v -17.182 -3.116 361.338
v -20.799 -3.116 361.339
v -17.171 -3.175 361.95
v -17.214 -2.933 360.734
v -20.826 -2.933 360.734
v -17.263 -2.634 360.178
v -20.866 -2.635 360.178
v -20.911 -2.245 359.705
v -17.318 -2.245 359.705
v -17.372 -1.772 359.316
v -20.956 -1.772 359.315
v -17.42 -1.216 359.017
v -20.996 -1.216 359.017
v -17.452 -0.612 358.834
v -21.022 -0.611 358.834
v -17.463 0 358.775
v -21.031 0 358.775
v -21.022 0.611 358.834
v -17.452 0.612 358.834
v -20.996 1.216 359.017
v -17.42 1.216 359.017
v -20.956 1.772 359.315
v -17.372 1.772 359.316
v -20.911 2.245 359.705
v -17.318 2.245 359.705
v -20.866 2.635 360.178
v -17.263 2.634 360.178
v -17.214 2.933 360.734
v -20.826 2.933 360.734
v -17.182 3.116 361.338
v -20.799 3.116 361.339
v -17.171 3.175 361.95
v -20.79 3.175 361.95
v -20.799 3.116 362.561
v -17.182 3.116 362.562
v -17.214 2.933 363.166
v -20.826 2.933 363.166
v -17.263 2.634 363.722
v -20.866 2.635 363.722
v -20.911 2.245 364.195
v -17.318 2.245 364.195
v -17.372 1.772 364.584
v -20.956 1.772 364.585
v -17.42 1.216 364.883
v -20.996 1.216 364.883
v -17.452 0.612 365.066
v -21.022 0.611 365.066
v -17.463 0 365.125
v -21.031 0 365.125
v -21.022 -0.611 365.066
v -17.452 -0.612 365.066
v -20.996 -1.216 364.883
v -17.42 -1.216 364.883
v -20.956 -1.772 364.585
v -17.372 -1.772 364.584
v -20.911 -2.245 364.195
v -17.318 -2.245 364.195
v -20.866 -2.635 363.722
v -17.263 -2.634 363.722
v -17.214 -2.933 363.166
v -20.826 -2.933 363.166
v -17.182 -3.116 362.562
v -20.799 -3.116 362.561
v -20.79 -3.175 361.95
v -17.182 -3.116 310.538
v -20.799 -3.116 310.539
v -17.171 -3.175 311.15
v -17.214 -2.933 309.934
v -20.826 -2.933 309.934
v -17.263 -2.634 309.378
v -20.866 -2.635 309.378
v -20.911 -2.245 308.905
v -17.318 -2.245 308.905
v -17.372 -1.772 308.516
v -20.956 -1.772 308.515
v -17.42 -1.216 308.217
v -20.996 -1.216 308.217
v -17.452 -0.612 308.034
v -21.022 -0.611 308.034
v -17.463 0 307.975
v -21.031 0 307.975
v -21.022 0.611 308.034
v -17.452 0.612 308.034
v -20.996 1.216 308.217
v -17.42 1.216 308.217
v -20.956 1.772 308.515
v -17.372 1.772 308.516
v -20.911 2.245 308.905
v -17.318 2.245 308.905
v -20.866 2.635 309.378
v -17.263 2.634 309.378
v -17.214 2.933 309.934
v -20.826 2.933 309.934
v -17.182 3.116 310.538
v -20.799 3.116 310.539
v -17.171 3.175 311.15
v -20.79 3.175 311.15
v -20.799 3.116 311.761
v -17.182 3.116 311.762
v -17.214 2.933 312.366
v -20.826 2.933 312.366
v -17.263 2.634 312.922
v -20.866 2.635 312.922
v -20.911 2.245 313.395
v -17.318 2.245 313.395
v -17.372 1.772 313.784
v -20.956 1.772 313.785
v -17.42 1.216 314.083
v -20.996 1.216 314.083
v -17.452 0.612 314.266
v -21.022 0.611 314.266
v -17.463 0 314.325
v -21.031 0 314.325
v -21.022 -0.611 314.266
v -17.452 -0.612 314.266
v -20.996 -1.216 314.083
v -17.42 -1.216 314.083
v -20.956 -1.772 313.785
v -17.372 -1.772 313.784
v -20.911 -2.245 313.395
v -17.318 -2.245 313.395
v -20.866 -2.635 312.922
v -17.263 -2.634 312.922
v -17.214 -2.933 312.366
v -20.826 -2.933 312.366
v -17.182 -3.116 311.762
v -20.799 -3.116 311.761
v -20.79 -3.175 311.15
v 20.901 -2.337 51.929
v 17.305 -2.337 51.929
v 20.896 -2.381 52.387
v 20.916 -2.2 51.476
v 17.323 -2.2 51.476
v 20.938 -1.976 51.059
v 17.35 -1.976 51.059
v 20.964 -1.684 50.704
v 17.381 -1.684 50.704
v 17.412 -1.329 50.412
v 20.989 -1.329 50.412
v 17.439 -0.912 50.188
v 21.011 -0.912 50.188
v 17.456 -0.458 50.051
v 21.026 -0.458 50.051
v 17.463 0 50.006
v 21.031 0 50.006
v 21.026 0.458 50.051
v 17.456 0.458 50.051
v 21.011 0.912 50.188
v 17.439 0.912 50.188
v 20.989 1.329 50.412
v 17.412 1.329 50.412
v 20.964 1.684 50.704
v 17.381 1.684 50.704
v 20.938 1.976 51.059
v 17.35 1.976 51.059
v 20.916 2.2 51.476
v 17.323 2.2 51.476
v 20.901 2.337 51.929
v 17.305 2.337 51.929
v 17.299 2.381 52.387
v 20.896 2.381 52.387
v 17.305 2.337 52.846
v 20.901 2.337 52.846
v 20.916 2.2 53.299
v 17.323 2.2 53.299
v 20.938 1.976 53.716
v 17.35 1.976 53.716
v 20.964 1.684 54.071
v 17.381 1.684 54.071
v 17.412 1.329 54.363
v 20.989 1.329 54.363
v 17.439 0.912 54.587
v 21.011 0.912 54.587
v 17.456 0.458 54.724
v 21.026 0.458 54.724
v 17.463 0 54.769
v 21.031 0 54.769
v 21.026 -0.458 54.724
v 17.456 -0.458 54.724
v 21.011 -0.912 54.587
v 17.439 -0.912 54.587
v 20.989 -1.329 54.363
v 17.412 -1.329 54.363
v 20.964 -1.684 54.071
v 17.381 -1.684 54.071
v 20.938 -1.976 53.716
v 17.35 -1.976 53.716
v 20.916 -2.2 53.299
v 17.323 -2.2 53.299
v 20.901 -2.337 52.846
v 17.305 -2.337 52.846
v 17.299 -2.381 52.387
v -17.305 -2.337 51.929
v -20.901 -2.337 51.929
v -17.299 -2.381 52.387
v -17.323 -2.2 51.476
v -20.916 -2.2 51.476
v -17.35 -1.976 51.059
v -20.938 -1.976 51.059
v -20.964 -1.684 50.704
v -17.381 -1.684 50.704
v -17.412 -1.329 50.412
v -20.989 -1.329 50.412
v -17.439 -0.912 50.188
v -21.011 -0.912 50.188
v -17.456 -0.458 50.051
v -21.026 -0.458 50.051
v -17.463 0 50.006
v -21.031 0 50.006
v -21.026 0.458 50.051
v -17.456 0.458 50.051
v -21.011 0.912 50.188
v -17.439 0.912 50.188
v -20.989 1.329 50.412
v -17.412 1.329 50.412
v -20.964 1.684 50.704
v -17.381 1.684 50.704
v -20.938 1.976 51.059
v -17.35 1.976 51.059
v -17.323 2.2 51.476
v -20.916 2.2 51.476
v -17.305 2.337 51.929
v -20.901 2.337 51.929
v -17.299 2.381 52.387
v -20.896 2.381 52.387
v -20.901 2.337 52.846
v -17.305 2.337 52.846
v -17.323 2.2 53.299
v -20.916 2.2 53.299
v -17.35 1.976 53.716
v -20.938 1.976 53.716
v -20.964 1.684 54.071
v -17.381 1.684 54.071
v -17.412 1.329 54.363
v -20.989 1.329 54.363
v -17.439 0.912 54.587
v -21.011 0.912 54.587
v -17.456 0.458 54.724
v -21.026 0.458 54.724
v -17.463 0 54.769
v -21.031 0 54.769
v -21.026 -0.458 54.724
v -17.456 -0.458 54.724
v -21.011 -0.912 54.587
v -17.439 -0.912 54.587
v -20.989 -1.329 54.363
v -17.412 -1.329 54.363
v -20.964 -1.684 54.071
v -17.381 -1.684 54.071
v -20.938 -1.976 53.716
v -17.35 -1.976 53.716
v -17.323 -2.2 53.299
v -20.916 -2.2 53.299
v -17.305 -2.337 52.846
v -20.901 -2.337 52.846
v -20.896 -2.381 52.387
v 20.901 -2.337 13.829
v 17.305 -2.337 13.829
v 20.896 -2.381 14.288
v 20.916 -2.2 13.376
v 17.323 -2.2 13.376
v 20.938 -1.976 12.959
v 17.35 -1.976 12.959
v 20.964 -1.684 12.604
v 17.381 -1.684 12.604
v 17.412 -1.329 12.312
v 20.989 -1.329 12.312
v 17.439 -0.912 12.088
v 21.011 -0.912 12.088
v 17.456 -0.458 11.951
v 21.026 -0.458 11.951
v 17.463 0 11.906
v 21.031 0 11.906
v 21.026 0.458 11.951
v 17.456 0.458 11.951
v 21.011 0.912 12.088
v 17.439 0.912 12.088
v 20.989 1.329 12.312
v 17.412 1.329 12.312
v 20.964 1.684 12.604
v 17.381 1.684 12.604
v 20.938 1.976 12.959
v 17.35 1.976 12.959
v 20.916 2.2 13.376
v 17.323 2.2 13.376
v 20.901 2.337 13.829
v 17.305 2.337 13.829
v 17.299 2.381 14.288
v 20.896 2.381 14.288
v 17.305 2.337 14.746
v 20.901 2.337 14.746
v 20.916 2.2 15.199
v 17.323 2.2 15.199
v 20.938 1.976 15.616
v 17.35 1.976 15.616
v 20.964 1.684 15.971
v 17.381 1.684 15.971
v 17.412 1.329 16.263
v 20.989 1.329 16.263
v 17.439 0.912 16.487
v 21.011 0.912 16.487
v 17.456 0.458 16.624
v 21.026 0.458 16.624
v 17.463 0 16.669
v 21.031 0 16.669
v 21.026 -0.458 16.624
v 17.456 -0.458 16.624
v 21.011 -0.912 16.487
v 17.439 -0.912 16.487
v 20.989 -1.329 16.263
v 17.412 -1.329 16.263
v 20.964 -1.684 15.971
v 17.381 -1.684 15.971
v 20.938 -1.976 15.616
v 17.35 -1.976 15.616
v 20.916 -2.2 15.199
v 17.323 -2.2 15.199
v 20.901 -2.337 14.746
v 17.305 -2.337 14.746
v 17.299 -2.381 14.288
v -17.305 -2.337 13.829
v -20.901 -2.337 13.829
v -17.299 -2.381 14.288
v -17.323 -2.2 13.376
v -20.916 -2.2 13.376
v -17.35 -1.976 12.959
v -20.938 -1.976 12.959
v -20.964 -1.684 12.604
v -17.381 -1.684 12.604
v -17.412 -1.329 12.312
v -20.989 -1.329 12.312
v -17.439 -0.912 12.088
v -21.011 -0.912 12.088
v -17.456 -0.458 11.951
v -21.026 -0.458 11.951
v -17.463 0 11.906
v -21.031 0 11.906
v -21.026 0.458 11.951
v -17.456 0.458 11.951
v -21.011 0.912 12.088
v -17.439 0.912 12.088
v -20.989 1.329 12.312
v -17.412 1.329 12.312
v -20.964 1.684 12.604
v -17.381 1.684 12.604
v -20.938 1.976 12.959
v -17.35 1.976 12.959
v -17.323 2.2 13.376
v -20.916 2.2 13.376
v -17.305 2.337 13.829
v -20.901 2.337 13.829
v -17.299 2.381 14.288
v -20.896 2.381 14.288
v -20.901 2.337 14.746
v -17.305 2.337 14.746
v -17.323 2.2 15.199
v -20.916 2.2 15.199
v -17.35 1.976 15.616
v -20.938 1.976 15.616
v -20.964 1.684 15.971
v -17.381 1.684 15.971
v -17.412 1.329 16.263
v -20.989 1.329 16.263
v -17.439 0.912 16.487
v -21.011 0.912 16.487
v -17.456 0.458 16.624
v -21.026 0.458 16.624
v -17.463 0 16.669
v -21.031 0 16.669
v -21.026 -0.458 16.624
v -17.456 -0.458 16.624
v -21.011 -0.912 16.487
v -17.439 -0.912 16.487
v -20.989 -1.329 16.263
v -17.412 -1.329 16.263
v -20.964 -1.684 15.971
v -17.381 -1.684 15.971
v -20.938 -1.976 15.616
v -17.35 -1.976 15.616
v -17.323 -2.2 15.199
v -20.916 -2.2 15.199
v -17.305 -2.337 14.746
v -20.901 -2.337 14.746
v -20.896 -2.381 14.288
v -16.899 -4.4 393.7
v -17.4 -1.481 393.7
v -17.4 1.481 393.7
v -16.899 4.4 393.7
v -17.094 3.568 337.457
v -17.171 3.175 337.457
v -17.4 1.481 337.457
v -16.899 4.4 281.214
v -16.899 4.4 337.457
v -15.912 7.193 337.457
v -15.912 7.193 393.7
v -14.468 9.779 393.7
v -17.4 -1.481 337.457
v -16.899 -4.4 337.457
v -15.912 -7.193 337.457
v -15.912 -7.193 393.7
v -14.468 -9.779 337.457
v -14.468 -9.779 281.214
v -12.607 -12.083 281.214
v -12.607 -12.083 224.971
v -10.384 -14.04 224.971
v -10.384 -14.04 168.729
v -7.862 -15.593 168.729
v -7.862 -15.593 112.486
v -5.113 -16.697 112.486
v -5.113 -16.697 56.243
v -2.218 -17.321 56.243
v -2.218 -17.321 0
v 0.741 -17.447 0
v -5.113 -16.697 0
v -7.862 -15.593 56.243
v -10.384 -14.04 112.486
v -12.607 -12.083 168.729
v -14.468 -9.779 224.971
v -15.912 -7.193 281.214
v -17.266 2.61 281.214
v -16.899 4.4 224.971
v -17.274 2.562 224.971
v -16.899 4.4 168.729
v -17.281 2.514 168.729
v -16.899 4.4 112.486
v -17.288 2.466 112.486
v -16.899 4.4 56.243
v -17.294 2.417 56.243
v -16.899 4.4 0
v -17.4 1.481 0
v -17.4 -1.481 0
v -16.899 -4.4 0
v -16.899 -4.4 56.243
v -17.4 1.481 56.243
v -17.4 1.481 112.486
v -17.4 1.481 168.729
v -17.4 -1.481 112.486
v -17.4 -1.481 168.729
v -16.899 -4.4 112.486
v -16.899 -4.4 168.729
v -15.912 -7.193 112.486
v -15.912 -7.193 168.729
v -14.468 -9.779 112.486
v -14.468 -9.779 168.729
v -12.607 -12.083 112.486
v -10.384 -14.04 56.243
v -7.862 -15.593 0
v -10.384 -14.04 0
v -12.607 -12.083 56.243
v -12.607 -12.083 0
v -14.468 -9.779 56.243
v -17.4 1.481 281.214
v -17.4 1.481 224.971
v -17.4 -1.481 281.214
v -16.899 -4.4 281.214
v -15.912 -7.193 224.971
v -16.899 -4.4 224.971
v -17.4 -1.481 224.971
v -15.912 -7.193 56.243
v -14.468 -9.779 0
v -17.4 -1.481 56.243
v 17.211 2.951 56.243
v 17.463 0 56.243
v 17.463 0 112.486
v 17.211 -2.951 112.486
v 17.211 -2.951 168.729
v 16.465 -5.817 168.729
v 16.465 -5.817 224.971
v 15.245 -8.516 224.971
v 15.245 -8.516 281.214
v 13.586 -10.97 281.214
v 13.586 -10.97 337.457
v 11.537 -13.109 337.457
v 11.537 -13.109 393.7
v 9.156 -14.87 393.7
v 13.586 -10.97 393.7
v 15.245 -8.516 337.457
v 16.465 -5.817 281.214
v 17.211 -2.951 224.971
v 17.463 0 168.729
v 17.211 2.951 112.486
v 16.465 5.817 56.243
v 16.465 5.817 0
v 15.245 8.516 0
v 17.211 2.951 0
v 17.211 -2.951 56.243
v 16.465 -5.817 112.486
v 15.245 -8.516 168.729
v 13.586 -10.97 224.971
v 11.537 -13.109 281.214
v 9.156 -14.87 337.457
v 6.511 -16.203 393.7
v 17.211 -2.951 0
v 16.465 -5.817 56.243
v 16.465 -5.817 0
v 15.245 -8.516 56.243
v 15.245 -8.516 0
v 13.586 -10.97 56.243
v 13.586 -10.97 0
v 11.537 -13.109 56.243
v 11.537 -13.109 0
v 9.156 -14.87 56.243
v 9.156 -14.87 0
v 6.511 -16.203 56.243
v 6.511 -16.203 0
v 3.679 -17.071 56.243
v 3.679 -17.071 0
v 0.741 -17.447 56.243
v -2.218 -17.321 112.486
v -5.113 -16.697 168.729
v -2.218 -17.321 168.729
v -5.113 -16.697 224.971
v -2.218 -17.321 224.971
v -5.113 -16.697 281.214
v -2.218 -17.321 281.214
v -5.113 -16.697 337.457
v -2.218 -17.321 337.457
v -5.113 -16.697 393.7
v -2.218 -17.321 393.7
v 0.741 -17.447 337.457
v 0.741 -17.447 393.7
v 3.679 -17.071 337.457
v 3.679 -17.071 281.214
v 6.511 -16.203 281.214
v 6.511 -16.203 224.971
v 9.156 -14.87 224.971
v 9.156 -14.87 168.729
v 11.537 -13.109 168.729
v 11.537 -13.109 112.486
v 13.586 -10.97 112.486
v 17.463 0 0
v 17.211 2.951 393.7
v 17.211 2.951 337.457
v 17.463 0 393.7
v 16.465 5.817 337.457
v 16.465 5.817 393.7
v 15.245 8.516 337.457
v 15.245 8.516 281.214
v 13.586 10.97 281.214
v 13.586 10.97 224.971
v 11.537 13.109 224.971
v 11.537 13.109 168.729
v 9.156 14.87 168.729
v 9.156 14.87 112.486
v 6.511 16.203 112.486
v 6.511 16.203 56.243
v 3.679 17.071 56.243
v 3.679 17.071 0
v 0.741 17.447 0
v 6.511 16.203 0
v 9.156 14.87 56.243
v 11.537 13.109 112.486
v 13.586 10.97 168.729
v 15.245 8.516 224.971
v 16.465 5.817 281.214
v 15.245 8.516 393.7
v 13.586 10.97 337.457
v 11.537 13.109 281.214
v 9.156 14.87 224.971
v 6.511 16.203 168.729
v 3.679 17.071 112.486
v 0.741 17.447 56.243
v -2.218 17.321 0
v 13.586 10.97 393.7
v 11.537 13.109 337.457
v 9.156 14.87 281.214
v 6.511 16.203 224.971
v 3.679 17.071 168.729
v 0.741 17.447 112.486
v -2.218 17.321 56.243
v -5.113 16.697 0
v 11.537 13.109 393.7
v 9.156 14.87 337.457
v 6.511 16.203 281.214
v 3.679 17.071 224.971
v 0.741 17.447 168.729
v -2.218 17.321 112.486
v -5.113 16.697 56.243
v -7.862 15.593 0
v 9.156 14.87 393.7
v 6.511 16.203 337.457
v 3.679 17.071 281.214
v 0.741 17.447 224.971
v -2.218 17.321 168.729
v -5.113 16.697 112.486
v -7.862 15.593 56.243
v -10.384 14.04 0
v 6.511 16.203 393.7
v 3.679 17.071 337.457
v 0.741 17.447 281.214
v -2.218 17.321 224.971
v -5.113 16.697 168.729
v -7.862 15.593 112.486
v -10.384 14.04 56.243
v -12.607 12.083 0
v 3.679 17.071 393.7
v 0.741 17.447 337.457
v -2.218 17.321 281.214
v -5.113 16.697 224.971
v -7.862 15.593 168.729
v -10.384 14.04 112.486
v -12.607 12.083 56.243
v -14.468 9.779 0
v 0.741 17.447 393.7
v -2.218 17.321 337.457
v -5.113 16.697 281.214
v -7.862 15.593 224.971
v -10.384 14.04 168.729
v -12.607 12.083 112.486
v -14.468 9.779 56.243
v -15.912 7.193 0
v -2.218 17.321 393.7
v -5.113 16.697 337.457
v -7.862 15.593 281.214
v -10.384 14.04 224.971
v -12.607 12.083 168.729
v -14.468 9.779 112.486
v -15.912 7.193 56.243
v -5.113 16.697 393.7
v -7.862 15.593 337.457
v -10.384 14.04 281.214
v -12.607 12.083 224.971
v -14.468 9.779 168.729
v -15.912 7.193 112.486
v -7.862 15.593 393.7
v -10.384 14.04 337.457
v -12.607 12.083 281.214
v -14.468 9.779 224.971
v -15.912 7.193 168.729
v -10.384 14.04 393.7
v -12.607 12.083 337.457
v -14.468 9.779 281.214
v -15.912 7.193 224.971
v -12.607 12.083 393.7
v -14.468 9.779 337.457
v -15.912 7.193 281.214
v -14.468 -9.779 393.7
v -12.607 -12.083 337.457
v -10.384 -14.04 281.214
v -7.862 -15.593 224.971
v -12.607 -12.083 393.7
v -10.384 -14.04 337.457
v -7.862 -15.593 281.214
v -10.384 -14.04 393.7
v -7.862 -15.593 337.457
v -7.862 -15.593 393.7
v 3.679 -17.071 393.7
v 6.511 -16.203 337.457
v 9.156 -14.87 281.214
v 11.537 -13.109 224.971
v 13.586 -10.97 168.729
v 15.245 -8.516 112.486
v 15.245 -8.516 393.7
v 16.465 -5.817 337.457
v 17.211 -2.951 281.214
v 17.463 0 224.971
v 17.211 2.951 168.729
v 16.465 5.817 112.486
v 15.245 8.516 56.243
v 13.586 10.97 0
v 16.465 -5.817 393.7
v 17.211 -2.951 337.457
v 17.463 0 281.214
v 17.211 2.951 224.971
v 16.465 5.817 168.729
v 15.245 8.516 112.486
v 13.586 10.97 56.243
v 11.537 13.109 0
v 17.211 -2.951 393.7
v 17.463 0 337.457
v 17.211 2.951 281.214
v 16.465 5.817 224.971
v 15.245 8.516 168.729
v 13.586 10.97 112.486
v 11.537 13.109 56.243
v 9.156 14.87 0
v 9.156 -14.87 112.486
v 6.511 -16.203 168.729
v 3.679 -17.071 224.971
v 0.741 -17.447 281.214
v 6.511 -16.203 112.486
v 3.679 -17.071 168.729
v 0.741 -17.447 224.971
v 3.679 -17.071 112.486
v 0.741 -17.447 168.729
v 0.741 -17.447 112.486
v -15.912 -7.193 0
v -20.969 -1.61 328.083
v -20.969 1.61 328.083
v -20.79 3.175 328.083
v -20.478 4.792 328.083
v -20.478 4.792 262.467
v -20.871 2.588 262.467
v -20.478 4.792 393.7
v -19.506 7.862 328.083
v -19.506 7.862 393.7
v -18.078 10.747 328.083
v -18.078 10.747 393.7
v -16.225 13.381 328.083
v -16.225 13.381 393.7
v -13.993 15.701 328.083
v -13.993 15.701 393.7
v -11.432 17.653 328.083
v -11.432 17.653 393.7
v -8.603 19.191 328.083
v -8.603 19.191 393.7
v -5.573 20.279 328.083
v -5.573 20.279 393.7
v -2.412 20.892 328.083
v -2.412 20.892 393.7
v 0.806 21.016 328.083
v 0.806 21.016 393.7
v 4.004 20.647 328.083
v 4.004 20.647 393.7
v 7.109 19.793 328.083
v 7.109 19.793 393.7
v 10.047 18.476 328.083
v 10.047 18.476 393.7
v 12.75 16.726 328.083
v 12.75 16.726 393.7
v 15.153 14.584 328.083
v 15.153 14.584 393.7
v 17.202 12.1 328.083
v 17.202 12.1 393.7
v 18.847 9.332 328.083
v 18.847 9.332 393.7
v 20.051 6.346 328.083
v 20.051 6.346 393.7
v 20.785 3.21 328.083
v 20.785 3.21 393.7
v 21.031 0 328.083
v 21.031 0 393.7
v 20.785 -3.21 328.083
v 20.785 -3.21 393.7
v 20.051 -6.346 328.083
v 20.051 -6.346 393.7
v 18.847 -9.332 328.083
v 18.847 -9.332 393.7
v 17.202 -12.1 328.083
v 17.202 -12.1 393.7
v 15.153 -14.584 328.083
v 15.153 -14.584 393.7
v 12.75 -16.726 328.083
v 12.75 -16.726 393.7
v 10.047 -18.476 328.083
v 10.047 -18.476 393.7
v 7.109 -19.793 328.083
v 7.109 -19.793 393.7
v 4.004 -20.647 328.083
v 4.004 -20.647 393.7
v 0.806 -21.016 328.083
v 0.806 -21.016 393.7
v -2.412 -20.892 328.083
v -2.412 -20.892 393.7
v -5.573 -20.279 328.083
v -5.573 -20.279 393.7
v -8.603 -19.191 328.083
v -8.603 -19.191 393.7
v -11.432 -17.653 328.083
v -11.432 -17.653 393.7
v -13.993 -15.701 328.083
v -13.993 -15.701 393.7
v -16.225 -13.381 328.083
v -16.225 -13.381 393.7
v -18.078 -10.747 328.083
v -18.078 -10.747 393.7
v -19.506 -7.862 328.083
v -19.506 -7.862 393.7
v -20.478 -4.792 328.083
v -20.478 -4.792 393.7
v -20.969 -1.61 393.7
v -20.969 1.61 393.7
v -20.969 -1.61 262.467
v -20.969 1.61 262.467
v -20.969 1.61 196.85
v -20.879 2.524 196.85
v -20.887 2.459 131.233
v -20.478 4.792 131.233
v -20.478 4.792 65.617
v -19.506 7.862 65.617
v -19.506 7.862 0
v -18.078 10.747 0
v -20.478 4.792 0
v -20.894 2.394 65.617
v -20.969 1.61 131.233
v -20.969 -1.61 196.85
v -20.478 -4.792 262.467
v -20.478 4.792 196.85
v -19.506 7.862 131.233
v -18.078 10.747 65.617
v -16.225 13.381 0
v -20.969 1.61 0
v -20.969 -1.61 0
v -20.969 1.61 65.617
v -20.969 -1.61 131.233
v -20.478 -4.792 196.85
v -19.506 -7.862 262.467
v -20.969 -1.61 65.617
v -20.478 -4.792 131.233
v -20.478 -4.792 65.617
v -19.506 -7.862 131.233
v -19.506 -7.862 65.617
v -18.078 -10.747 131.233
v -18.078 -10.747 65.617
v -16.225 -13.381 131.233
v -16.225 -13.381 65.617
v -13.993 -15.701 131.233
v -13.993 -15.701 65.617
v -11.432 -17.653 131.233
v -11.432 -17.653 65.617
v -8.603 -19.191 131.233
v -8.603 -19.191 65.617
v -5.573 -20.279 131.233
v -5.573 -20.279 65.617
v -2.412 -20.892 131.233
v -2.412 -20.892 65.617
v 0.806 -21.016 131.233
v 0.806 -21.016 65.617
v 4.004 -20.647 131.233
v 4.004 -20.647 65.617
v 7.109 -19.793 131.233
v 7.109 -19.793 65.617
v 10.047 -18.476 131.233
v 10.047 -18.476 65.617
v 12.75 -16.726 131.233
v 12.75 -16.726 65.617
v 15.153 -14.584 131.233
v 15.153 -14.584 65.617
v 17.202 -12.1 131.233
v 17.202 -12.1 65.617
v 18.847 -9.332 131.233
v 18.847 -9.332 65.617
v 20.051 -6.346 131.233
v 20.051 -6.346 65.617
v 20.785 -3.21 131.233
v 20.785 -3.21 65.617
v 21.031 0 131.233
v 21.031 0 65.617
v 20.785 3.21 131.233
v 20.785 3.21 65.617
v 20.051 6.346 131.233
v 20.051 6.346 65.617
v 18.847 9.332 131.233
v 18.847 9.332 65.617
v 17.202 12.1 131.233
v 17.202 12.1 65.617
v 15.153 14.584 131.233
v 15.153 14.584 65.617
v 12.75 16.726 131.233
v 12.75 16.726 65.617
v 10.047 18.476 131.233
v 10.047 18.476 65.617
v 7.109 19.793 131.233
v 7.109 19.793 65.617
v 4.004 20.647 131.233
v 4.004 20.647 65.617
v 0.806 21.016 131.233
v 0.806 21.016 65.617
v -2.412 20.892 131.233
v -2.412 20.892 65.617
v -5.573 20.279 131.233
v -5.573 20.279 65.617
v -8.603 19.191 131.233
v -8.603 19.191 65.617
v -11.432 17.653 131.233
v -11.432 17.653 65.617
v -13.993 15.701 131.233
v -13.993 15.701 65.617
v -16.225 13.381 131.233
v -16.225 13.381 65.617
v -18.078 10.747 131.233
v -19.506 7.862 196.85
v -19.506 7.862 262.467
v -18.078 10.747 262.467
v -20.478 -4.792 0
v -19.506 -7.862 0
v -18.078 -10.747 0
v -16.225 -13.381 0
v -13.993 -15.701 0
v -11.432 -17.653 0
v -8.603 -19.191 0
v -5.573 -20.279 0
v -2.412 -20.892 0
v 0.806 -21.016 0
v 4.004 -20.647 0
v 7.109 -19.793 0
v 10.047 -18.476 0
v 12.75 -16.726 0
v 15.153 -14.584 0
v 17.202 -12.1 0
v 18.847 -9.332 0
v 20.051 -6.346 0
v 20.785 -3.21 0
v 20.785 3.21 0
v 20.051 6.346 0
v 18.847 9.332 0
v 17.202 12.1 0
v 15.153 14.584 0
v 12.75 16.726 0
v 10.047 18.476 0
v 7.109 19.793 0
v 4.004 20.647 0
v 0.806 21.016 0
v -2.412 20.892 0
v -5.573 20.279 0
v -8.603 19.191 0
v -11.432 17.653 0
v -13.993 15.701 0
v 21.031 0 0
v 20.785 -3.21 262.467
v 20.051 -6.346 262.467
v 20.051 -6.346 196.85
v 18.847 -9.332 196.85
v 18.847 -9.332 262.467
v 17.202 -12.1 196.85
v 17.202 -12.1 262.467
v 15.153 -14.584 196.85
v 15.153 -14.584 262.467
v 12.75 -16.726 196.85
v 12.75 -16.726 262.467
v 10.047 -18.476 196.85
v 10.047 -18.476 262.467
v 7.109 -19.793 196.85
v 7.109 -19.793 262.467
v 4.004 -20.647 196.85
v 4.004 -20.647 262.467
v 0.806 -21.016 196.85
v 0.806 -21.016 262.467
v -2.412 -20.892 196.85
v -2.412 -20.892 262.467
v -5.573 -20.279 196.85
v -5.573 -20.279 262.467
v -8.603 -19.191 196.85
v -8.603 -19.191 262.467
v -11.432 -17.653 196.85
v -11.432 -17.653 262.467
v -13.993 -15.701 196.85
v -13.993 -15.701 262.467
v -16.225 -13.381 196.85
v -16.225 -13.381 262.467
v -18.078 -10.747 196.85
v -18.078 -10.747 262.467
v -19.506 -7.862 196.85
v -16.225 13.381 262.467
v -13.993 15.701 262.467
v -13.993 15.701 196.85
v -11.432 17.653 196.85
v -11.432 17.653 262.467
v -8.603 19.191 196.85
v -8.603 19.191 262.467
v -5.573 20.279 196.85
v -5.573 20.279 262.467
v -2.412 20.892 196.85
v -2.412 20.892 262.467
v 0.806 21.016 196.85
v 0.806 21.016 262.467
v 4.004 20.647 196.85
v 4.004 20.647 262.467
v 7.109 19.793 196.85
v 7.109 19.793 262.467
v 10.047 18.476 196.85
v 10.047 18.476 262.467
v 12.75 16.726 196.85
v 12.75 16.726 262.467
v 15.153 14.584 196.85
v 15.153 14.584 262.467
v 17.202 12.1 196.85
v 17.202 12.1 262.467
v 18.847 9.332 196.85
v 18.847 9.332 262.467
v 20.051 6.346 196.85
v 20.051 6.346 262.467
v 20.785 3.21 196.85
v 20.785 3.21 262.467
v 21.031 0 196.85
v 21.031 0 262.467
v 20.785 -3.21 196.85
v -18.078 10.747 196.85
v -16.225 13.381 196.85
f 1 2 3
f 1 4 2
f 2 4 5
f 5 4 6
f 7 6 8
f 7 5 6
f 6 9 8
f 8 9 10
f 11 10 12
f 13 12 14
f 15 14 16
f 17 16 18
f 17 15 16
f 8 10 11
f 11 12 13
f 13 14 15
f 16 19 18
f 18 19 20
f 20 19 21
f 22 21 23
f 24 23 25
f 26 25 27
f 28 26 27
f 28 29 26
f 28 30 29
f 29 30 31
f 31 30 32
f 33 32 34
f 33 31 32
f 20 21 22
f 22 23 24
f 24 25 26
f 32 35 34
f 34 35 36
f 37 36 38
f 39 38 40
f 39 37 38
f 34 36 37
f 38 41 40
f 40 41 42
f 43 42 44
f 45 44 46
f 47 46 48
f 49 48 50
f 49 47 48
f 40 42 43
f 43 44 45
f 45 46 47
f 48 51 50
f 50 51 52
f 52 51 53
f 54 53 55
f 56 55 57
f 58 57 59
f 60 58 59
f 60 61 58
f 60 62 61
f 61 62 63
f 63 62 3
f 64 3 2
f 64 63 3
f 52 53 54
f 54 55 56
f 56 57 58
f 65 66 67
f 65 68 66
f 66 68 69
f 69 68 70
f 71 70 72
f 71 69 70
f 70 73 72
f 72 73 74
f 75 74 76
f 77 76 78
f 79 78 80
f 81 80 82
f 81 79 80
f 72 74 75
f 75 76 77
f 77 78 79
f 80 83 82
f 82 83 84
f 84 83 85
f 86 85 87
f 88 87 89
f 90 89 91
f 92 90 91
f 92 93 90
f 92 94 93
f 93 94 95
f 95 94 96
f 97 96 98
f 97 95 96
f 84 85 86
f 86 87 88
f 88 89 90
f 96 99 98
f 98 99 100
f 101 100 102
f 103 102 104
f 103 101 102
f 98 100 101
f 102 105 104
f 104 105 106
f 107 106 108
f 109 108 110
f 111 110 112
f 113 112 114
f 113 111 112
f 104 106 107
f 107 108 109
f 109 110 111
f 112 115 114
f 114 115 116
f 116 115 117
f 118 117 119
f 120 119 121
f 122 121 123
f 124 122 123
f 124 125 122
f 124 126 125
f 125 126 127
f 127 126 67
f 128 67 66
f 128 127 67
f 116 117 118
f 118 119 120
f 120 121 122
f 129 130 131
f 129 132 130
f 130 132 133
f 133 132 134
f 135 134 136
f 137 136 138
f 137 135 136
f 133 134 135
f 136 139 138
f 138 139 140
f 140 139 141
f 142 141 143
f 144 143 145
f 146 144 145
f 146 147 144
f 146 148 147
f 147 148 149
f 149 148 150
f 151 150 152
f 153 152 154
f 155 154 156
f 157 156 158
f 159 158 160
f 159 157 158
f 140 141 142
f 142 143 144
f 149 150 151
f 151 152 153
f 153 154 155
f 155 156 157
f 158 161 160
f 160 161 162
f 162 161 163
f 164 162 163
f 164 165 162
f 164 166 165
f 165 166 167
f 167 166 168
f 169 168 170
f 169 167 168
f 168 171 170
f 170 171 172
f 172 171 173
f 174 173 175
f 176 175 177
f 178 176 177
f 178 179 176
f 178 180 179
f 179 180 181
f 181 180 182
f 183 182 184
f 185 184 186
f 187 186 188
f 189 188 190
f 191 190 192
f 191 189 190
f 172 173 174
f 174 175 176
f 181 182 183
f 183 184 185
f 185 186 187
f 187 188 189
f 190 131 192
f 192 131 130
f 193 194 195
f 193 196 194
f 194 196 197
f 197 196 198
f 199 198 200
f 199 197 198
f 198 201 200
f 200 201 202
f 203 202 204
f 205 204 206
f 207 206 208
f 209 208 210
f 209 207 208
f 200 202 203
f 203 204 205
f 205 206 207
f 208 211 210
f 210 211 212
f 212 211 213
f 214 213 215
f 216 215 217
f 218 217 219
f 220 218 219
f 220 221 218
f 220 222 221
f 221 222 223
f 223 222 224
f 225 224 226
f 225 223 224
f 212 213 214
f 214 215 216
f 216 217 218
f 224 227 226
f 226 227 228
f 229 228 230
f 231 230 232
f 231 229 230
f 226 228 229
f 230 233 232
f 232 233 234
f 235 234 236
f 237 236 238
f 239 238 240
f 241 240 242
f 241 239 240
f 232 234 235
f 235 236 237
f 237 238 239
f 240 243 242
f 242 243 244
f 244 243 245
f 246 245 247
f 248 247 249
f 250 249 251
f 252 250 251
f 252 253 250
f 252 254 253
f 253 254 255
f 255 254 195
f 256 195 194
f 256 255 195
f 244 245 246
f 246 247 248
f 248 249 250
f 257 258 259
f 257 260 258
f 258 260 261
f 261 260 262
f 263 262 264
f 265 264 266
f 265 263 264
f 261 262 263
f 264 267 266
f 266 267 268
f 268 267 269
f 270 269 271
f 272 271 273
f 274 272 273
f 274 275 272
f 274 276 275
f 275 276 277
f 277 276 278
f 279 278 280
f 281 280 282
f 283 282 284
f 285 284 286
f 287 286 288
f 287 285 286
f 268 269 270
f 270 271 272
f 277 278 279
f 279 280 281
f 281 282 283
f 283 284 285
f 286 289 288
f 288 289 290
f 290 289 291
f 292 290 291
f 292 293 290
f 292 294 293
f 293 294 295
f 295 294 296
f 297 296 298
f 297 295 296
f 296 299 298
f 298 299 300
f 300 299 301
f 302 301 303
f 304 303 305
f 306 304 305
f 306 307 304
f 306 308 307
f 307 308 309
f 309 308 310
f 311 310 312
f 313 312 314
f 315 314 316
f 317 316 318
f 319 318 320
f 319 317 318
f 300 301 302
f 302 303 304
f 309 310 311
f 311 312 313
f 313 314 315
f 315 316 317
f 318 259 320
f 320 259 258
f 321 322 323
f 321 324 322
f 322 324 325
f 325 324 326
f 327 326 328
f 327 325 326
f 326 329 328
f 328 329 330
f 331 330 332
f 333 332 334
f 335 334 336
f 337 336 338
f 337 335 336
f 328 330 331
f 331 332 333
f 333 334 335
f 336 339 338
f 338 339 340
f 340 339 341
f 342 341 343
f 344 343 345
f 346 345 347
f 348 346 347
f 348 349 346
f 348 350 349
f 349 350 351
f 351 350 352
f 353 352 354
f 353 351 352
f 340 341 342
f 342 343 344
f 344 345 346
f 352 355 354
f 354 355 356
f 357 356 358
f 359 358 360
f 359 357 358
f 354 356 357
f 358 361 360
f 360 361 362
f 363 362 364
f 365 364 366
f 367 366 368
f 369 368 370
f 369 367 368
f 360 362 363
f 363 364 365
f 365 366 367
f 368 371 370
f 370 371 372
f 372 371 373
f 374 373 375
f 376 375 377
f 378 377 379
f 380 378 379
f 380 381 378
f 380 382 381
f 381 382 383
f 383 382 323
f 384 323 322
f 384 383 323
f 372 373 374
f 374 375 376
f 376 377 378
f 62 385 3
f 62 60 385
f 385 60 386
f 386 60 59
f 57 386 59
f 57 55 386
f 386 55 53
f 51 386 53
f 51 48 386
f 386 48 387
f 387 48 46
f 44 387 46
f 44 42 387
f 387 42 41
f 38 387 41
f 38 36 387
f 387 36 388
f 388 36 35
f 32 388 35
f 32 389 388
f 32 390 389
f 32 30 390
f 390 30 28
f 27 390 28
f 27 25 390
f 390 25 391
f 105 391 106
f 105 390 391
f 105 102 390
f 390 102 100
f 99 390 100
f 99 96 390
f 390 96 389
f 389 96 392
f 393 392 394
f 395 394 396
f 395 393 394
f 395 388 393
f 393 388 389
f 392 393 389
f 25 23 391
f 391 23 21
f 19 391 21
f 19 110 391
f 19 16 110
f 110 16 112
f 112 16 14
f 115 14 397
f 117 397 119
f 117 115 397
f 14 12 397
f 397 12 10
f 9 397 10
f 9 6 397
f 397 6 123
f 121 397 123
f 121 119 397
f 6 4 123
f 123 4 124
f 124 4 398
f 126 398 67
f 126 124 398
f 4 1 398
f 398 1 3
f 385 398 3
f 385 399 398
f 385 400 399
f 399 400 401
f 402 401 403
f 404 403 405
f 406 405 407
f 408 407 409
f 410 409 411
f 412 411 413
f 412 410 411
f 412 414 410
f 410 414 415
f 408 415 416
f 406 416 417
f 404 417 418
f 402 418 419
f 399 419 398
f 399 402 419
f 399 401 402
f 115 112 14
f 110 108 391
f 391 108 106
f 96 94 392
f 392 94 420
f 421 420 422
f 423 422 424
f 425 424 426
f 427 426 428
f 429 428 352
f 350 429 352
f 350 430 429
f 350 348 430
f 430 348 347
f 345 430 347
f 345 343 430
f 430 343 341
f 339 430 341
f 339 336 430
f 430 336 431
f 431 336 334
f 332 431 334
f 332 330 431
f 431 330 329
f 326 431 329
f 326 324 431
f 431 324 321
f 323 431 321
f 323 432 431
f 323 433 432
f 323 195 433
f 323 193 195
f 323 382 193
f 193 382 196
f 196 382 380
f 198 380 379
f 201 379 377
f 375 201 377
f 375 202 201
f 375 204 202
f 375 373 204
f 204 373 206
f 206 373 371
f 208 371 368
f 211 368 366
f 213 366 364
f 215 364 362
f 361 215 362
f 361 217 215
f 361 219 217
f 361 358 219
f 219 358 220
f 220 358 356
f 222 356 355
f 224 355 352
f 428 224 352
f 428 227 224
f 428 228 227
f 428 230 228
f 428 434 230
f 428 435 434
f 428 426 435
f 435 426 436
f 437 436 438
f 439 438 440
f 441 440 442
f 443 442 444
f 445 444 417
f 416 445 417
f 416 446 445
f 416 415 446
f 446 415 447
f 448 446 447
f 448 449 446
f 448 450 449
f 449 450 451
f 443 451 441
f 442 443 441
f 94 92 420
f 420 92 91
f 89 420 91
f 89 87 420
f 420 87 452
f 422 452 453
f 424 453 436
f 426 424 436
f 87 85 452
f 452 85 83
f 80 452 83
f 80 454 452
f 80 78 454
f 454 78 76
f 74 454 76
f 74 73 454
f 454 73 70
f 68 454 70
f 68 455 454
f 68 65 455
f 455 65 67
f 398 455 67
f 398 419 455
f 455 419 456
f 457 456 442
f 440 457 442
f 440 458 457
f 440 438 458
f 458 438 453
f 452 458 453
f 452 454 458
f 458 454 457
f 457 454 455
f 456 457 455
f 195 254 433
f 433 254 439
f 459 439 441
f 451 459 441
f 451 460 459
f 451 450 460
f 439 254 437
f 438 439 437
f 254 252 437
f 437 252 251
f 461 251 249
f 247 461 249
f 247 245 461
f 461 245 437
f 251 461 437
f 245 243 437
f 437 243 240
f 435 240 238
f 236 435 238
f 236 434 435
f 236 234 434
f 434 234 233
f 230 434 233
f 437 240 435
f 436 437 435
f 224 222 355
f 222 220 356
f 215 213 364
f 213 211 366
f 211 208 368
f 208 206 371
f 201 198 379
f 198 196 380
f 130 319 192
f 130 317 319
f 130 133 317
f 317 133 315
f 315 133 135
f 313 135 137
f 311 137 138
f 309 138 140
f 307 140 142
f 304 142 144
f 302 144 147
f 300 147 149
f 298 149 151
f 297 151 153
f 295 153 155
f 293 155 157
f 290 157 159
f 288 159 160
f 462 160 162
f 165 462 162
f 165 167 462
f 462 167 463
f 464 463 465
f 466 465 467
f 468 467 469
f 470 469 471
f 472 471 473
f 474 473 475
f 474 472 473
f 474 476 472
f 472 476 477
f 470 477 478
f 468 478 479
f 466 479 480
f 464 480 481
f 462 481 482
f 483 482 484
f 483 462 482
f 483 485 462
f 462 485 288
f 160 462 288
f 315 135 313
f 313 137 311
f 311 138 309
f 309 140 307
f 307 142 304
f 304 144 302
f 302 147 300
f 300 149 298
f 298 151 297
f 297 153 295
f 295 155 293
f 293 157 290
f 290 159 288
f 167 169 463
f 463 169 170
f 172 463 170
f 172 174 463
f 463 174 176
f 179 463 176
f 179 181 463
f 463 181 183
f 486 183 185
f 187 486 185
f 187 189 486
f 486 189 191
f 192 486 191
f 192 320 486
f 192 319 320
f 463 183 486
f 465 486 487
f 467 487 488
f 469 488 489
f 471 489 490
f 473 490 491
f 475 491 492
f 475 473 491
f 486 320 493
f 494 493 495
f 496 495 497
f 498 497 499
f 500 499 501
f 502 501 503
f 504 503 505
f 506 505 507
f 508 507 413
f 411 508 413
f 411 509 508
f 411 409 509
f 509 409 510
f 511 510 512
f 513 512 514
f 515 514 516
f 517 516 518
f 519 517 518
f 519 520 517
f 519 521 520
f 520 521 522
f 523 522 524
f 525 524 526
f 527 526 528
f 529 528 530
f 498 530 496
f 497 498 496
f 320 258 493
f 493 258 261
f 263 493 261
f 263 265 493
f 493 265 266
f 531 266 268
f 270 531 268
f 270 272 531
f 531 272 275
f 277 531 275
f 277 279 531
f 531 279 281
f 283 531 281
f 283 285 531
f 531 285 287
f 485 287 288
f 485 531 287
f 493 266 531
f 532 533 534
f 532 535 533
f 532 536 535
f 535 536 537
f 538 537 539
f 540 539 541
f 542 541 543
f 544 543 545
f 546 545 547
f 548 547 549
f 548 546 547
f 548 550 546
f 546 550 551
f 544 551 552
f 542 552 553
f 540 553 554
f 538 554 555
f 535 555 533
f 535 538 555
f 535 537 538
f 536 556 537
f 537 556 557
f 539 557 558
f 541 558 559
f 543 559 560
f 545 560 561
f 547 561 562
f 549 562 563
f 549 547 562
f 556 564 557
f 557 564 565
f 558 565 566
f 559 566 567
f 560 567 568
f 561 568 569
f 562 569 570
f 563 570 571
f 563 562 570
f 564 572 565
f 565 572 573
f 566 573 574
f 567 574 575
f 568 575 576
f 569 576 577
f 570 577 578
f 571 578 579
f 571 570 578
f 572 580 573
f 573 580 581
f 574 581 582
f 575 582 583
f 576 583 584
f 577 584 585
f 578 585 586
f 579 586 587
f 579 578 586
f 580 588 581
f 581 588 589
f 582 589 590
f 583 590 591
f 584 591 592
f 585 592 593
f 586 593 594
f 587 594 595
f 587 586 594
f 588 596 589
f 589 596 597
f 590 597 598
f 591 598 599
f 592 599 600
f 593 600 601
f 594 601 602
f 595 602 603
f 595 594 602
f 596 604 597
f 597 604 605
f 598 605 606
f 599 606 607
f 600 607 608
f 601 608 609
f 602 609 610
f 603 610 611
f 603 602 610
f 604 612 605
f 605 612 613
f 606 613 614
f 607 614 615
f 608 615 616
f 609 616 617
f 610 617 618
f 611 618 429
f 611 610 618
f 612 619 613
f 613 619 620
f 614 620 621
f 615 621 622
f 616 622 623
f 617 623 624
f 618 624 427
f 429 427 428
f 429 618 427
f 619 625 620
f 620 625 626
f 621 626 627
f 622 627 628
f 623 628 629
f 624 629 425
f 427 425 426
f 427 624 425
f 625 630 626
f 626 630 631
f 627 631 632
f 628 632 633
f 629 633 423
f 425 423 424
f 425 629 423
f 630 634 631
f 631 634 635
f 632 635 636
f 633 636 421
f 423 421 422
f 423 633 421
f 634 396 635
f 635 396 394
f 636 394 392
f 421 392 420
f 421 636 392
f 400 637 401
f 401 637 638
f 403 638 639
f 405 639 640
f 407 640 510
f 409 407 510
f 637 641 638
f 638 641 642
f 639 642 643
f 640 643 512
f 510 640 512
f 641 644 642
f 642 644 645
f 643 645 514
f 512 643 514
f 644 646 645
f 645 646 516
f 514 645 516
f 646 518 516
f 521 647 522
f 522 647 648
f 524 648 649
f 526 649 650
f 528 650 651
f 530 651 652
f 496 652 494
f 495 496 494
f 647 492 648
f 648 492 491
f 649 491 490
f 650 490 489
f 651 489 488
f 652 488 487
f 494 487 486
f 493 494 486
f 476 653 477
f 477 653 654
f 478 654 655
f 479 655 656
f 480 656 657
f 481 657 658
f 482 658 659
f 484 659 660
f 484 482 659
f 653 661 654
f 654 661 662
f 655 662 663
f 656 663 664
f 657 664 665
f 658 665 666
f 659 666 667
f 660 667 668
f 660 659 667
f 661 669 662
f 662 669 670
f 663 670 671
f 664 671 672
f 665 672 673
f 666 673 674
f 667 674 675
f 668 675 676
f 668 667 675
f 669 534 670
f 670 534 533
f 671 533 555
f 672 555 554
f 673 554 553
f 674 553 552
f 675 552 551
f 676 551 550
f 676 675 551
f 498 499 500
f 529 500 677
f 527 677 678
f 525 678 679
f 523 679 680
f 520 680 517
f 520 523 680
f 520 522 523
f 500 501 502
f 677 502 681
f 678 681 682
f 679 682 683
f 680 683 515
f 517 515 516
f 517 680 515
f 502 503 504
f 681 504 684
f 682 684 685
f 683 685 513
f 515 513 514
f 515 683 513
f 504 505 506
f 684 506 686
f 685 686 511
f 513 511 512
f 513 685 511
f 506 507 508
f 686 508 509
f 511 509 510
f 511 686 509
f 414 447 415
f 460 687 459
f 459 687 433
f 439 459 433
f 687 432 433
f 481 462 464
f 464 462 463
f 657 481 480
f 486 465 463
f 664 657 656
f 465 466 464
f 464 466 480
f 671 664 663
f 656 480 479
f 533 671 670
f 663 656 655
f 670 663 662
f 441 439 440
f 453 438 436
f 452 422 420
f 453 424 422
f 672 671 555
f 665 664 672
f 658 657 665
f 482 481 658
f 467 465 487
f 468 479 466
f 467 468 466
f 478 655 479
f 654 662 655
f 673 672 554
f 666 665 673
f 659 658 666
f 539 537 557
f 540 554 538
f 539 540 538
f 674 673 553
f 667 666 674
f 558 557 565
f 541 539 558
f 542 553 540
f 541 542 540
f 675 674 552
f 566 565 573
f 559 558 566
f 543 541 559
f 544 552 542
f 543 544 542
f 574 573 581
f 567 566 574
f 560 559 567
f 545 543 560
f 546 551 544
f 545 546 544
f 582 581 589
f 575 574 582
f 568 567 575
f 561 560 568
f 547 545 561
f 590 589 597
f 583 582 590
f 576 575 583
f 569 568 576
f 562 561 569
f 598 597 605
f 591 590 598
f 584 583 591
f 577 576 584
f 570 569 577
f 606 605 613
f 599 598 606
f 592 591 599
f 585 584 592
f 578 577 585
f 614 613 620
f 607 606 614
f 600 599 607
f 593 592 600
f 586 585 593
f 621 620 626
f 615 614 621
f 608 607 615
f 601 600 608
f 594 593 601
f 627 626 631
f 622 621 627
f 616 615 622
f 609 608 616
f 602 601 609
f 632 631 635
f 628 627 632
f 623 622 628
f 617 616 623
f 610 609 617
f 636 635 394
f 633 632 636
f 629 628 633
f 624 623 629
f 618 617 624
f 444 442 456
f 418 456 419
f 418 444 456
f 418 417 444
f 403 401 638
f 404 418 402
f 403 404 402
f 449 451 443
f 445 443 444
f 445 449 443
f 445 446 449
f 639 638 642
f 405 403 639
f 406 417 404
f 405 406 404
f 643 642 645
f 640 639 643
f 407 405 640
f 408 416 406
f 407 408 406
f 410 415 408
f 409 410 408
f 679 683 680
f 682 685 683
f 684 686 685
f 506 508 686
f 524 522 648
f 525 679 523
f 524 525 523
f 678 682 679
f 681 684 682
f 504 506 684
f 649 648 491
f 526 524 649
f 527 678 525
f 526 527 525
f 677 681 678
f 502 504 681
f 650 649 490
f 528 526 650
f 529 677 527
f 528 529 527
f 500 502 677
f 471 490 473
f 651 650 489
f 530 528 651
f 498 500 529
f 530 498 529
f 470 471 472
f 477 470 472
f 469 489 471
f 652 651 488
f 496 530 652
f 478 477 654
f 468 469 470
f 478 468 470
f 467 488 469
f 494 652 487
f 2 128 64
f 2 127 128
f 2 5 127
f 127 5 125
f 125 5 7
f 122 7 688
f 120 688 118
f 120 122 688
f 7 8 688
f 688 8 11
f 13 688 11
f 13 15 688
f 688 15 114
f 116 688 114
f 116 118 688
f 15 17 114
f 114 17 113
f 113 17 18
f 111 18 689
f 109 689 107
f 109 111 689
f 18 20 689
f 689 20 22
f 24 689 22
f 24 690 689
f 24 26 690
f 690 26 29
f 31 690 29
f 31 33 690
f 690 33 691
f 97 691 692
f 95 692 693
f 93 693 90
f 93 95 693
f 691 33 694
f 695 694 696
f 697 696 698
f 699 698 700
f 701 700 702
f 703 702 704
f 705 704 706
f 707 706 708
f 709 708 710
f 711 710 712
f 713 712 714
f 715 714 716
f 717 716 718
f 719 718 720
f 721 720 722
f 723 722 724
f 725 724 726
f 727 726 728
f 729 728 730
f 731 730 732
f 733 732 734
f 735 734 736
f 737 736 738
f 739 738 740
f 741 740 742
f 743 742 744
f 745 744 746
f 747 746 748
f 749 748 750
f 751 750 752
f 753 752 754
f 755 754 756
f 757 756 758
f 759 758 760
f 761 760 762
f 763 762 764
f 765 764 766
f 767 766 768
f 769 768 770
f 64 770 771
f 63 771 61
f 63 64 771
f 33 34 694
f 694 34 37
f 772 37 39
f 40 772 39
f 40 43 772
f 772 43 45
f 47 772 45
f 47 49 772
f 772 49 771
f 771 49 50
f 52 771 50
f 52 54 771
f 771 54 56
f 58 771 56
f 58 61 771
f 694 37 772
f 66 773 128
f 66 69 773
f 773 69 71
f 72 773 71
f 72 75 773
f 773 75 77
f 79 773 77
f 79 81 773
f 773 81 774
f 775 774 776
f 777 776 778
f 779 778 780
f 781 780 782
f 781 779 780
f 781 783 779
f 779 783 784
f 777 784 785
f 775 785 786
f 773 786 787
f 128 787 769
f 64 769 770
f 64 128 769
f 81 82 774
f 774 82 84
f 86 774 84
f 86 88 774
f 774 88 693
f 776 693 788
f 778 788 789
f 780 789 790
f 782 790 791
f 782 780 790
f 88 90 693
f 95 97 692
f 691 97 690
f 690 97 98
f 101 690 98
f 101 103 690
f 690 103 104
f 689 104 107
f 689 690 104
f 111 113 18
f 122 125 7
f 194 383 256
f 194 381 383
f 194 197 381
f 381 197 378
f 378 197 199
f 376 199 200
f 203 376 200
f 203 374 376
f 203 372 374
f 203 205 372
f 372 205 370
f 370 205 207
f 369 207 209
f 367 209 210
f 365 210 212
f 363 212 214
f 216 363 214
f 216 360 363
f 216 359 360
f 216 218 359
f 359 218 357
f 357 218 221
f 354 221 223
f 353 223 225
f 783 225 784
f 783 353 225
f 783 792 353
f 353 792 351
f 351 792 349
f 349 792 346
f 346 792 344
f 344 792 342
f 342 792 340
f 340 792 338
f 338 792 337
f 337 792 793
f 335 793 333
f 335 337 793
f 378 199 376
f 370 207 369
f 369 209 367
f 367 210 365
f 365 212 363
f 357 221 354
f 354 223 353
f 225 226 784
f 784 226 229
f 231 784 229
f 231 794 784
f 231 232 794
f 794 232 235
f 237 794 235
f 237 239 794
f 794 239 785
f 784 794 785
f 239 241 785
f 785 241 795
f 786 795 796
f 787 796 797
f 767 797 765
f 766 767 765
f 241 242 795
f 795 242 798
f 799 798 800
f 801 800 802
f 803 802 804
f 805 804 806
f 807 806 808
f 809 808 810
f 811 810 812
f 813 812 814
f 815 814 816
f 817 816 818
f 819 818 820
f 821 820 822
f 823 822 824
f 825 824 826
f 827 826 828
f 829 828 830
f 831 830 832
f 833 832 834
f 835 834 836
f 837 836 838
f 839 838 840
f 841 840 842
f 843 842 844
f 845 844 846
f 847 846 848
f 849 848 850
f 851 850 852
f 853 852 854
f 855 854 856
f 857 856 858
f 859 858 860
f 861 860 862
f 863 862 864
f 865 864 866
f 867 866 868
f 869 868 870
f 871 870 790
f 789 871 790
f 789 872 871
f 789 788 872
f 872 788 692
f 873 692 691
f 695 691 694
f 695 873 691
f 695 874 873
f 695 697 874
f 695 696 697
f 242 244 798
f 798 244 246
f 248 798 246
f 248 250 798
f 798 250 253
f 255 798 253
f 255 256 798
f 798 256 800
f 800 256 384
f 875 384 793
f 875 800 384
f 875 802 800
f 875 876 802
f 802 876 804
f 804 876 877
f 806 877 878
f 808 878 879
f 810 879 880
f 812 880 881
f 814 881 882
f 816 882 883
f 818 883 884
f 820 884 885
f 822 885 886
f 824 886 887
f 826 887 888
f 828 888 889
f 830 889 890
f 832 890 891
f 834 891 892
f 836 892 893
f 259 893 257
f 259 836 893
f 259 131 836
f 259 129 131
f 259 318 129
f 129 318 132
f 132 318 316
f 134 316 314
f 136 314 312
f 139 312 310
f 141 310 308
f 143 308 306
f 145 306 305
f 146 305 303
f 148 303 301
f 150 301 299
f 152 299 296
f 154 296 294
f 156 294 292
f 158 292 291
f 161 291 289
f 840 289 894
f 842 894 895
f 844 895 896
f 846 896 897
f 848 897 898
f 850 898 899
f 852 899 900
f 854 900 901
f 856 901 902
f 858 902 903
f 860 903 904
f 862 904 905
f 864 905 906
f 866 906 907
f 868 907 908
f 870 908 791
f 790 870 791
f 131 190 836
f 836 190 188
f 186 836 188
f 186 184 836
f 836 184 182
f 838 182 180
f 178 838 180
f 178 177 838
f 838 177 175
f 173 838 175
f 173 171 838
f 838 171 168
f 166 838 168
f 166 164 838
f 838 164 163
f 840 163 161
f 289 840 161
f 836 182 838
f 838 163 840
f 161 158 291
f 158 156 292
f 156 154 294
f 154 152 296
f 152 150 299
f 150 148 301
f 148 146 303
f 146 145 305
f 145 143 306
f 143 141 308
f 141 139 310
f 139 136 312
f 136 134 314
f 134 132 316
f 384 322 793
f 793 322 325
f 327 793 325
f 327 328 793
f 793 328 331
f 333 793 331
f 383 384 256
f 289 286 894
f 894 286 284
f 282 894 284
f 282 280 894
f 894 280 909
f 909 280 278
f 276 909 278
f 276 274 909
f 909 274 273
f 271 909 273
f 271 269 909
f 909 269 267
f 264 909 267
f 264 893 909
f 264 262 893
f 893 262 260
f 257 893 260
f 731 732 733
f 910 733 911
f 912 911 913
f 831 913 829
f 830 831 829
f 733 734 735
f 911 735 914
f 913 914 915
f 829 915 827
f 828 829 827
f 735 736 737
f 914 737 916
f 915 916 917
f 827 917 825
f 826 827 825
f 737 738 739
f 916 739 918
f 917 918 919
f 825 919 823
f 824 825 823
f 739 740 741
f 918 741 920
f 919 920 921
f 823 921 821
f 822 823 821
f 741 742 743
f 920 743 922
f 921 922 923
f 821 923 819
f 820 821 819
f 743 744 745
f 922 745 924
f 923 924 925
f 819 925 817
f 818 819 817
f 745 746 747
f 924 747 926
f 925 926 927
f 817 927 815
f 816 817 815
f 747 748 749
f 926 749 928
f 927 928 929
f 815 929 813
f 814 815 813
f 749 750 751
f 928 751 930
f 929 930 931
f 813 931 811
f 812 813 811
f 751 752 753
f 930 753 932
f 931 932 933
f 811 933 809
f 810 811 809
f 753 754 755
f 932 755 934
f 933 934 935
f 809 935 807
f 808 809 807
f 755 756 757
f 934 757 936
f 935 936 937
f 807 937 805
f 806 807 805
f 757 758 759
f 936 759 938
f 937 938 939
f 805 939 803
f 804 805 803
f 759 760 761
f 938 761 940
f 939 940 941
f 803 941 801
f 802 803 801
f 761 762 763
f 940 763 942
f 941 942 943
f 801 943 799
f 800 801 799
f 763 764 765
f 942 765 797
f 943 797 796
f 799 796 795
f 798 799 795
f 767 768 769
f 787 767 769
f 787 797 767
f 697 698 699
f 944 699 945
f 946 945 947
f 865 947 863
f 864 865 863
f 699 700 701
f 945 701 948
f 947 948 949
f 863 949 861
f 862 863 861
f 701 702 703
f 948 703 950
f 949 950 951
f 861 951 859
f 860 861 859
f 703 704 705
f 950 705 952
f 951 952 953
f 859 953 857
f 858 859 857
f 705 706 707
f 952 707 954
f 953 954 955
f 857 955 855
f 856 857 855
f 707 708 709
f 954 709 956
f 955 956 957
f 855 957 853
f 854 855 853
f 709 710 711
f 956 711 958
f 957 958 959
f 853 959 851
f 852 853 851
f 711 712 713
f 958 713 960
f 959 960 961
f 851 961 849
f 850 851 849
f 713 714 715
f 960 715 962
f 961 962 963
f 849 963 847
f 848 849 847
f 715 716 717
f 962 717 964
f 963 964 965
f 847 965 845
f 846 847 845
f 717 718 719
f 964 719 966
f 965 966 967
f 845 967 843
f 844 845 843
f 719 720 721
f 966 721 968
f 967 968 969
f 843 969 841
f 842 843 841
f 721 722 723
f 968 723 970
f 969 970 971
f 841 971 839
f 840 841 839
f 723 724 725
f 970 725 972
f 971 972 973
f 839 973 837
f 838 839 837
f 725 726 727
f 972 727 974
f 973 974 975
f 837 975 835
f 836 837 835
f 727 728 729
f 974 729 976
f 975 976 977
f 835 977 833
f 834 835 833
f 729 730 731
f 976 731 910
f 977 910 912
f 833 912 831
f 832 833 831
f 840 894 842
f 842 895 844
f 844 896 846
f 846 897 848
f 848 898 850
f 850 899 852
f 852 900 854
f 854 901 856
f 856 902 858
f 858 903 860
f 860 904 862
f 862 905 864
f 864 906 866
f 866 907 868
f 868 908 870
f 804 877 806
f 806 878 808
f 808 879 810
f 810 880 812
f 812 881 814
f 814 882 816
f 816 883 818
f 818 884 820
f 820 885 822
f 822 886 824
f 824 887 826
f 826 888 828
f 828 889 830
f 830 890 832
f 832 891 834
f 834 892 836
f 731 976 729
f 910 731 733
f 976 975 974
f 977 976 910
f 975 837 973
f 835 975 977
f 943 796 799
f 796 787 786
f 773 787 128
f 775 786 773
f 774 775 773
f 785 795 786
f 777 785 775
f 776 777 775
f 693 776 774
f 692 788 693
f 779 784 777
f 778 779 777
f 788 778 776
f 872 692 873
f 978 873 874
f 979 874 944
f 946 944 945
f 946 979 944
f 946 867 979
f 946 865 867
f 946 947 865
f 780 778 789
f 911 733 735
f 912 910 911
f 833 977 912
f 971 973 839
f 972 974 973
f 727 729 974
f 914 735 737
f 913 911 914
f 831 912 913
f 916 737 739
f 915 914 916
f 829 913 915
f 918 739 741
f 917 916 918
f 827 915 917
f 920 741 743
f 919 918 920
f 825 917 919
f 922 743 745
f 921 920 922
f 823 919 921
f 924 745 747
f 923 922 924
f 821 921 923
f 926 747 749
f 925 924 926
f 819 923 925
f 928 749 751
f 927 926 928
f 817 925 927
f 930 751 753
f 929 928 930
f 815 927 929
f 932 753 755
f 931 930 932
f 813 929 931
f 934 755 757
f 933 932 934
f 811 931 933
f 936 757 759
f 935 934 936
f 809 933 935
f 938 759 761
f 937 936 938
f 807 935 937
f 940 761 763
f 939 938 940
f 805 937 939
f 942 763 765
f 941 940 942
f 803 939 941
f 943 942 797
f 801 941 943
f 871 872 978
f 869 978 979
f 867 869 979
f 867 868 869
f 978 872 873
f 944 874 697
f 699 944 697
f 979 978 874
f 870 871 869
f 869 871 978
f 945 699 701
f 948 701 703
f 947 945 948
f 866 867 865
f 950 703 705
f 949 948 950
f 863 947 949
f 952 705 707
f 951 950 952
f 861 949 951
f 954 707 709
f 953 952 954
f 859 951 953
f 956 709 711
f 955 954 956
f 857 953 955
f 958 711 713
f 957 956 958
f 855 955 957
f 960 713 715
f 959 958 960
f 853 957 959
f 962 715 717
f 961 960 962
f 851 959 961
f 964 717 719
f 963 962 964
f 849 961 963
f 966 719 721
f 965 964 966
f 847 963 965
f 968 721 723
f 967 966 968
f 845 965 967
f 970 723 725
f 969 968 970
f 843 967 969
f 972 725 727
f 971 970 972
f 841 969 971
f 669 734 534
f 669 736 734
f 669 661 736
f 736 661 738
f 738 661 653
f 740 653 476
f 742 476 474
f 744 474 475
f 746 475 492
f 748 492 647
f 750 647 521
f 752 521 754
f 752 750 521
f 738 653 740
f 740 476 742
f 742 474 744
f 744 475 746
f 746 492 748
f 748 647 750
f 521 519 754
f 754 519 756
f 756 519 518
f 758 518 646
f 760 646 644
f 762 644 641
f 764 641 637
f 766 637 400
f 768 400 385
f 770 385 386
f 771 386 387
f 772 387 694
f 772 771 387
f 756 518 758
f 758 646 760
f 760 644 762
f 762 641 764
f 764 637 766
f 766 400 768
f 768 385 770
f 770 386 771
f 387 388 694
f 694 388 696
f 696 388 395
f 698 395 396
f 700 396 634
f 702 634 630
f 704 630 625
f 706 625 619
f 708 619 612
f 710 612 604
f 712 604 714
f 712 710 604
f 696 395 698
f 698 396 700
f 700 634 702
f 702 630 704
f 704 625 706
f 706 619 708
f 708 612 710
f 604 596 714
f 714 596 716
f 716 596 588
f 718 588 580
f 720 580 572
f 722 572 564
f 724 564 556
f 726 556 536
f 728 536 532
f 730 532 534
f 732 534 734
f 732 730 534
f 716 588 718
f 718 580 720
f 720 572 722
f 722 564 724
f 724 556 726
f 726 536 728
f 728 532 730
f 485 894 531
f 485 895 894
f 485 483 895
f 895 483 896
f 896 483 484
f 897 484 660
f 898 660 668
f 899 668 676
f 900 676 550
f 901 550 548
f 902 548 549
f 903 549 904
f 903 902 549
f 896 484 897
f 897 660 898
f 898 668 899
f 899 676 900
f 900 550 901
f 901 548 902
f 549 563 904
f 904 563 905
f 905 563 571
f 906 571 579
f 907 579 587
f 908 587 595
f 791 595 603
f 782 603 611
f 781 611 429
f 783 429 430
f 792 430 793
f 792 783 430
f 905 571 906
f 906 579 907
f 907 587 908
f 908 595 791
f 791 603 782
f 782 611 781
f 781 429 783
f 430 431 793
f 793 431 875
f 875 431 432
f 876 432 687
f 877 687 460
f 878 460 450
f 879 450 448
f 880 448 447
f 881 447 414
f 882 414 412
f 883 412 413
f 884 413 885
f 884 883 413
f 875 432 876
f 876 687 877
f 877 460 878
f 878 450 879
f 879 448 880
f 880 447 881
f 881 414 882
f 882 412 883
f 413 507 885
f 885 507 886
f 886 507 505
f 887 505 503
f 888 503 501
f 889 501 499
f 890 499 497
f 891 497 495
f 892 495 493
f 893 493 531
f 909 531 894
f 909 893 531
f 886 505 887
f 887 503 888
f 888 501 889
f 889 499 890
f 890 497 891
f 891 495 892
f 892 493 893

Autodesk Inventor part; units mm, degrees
ref_plane "XZ Plane" through (0, 0, 0) normal (0, 1, 0) x (-1, 0, 0)
ref_plane "XY Plane" through (0, 0, 0) normal (0, 0, 1) x (1, 0, 0)
sketch "Sketch1" plane through (0, 0, 0) normal (0, 0, 1) x (1, 0, 0)
  circle A0 centre (0, 0) radius 21.0312
  circle A1 centre (0, 0) radius 17.4625
  dimension "d0" = 34.925
  dimension "d1" = 42.0624
extrude "Extrusion1" add sketch "Sketch1" along normal blind 393.7
ref_plane "Work Plane1" through (0, 0, 0) normal (1, 0, 0) x (0, 0, 1)
sketch "Sketch2" plane through (0, 0, 0) normal (1, 0, 0) x (0, 0, 1)
  line L0 (-78.74, 0) -> (472.44, 0) projected
  line L1 (0, -21.0312) -> (393.7, -21.0312) projected
  line L2 (0, 21.0312) -> (393.7, 21.0312) projected
  line L3 (0, -17.4625) -> (0, 17.4625) projected
  line L4 (0, 21.0312) -> (0, -21.0312) projected
  circle A0 centre (14.2875, 0) radius 2.3813
  circle A1 centre (52.3875, 0) radius 2.3813
  line L5 (393.7, 21.0312) -> (393.7, -21.0312) projected
  circle A2 centre (311.15, 0) radius 3.175
  circle A3 centre (361.95, 0) radius 3.175
  dimension "d5" = 14.2875
  dimension "d6" = 38.1
  dimension "d7" = 4.7625
  dimension "d10" = 6.35
  dimension "d11" = 6.35
  dimension "d12" = 50.8
  dimension "d13" = 31.75
extrude "Extrusion2" cut sketch "Sketch2" against normal mid plane 393.7 contours A0 L0 | L0 A0 | A1 L0 | L0 A1
extrude "Extrusion3" cut sketch "Sketch2" against normal through all contours A2 L0 | L0 A2 | A3 L0 | L0 A3
properties part number "FE-00006-05"
